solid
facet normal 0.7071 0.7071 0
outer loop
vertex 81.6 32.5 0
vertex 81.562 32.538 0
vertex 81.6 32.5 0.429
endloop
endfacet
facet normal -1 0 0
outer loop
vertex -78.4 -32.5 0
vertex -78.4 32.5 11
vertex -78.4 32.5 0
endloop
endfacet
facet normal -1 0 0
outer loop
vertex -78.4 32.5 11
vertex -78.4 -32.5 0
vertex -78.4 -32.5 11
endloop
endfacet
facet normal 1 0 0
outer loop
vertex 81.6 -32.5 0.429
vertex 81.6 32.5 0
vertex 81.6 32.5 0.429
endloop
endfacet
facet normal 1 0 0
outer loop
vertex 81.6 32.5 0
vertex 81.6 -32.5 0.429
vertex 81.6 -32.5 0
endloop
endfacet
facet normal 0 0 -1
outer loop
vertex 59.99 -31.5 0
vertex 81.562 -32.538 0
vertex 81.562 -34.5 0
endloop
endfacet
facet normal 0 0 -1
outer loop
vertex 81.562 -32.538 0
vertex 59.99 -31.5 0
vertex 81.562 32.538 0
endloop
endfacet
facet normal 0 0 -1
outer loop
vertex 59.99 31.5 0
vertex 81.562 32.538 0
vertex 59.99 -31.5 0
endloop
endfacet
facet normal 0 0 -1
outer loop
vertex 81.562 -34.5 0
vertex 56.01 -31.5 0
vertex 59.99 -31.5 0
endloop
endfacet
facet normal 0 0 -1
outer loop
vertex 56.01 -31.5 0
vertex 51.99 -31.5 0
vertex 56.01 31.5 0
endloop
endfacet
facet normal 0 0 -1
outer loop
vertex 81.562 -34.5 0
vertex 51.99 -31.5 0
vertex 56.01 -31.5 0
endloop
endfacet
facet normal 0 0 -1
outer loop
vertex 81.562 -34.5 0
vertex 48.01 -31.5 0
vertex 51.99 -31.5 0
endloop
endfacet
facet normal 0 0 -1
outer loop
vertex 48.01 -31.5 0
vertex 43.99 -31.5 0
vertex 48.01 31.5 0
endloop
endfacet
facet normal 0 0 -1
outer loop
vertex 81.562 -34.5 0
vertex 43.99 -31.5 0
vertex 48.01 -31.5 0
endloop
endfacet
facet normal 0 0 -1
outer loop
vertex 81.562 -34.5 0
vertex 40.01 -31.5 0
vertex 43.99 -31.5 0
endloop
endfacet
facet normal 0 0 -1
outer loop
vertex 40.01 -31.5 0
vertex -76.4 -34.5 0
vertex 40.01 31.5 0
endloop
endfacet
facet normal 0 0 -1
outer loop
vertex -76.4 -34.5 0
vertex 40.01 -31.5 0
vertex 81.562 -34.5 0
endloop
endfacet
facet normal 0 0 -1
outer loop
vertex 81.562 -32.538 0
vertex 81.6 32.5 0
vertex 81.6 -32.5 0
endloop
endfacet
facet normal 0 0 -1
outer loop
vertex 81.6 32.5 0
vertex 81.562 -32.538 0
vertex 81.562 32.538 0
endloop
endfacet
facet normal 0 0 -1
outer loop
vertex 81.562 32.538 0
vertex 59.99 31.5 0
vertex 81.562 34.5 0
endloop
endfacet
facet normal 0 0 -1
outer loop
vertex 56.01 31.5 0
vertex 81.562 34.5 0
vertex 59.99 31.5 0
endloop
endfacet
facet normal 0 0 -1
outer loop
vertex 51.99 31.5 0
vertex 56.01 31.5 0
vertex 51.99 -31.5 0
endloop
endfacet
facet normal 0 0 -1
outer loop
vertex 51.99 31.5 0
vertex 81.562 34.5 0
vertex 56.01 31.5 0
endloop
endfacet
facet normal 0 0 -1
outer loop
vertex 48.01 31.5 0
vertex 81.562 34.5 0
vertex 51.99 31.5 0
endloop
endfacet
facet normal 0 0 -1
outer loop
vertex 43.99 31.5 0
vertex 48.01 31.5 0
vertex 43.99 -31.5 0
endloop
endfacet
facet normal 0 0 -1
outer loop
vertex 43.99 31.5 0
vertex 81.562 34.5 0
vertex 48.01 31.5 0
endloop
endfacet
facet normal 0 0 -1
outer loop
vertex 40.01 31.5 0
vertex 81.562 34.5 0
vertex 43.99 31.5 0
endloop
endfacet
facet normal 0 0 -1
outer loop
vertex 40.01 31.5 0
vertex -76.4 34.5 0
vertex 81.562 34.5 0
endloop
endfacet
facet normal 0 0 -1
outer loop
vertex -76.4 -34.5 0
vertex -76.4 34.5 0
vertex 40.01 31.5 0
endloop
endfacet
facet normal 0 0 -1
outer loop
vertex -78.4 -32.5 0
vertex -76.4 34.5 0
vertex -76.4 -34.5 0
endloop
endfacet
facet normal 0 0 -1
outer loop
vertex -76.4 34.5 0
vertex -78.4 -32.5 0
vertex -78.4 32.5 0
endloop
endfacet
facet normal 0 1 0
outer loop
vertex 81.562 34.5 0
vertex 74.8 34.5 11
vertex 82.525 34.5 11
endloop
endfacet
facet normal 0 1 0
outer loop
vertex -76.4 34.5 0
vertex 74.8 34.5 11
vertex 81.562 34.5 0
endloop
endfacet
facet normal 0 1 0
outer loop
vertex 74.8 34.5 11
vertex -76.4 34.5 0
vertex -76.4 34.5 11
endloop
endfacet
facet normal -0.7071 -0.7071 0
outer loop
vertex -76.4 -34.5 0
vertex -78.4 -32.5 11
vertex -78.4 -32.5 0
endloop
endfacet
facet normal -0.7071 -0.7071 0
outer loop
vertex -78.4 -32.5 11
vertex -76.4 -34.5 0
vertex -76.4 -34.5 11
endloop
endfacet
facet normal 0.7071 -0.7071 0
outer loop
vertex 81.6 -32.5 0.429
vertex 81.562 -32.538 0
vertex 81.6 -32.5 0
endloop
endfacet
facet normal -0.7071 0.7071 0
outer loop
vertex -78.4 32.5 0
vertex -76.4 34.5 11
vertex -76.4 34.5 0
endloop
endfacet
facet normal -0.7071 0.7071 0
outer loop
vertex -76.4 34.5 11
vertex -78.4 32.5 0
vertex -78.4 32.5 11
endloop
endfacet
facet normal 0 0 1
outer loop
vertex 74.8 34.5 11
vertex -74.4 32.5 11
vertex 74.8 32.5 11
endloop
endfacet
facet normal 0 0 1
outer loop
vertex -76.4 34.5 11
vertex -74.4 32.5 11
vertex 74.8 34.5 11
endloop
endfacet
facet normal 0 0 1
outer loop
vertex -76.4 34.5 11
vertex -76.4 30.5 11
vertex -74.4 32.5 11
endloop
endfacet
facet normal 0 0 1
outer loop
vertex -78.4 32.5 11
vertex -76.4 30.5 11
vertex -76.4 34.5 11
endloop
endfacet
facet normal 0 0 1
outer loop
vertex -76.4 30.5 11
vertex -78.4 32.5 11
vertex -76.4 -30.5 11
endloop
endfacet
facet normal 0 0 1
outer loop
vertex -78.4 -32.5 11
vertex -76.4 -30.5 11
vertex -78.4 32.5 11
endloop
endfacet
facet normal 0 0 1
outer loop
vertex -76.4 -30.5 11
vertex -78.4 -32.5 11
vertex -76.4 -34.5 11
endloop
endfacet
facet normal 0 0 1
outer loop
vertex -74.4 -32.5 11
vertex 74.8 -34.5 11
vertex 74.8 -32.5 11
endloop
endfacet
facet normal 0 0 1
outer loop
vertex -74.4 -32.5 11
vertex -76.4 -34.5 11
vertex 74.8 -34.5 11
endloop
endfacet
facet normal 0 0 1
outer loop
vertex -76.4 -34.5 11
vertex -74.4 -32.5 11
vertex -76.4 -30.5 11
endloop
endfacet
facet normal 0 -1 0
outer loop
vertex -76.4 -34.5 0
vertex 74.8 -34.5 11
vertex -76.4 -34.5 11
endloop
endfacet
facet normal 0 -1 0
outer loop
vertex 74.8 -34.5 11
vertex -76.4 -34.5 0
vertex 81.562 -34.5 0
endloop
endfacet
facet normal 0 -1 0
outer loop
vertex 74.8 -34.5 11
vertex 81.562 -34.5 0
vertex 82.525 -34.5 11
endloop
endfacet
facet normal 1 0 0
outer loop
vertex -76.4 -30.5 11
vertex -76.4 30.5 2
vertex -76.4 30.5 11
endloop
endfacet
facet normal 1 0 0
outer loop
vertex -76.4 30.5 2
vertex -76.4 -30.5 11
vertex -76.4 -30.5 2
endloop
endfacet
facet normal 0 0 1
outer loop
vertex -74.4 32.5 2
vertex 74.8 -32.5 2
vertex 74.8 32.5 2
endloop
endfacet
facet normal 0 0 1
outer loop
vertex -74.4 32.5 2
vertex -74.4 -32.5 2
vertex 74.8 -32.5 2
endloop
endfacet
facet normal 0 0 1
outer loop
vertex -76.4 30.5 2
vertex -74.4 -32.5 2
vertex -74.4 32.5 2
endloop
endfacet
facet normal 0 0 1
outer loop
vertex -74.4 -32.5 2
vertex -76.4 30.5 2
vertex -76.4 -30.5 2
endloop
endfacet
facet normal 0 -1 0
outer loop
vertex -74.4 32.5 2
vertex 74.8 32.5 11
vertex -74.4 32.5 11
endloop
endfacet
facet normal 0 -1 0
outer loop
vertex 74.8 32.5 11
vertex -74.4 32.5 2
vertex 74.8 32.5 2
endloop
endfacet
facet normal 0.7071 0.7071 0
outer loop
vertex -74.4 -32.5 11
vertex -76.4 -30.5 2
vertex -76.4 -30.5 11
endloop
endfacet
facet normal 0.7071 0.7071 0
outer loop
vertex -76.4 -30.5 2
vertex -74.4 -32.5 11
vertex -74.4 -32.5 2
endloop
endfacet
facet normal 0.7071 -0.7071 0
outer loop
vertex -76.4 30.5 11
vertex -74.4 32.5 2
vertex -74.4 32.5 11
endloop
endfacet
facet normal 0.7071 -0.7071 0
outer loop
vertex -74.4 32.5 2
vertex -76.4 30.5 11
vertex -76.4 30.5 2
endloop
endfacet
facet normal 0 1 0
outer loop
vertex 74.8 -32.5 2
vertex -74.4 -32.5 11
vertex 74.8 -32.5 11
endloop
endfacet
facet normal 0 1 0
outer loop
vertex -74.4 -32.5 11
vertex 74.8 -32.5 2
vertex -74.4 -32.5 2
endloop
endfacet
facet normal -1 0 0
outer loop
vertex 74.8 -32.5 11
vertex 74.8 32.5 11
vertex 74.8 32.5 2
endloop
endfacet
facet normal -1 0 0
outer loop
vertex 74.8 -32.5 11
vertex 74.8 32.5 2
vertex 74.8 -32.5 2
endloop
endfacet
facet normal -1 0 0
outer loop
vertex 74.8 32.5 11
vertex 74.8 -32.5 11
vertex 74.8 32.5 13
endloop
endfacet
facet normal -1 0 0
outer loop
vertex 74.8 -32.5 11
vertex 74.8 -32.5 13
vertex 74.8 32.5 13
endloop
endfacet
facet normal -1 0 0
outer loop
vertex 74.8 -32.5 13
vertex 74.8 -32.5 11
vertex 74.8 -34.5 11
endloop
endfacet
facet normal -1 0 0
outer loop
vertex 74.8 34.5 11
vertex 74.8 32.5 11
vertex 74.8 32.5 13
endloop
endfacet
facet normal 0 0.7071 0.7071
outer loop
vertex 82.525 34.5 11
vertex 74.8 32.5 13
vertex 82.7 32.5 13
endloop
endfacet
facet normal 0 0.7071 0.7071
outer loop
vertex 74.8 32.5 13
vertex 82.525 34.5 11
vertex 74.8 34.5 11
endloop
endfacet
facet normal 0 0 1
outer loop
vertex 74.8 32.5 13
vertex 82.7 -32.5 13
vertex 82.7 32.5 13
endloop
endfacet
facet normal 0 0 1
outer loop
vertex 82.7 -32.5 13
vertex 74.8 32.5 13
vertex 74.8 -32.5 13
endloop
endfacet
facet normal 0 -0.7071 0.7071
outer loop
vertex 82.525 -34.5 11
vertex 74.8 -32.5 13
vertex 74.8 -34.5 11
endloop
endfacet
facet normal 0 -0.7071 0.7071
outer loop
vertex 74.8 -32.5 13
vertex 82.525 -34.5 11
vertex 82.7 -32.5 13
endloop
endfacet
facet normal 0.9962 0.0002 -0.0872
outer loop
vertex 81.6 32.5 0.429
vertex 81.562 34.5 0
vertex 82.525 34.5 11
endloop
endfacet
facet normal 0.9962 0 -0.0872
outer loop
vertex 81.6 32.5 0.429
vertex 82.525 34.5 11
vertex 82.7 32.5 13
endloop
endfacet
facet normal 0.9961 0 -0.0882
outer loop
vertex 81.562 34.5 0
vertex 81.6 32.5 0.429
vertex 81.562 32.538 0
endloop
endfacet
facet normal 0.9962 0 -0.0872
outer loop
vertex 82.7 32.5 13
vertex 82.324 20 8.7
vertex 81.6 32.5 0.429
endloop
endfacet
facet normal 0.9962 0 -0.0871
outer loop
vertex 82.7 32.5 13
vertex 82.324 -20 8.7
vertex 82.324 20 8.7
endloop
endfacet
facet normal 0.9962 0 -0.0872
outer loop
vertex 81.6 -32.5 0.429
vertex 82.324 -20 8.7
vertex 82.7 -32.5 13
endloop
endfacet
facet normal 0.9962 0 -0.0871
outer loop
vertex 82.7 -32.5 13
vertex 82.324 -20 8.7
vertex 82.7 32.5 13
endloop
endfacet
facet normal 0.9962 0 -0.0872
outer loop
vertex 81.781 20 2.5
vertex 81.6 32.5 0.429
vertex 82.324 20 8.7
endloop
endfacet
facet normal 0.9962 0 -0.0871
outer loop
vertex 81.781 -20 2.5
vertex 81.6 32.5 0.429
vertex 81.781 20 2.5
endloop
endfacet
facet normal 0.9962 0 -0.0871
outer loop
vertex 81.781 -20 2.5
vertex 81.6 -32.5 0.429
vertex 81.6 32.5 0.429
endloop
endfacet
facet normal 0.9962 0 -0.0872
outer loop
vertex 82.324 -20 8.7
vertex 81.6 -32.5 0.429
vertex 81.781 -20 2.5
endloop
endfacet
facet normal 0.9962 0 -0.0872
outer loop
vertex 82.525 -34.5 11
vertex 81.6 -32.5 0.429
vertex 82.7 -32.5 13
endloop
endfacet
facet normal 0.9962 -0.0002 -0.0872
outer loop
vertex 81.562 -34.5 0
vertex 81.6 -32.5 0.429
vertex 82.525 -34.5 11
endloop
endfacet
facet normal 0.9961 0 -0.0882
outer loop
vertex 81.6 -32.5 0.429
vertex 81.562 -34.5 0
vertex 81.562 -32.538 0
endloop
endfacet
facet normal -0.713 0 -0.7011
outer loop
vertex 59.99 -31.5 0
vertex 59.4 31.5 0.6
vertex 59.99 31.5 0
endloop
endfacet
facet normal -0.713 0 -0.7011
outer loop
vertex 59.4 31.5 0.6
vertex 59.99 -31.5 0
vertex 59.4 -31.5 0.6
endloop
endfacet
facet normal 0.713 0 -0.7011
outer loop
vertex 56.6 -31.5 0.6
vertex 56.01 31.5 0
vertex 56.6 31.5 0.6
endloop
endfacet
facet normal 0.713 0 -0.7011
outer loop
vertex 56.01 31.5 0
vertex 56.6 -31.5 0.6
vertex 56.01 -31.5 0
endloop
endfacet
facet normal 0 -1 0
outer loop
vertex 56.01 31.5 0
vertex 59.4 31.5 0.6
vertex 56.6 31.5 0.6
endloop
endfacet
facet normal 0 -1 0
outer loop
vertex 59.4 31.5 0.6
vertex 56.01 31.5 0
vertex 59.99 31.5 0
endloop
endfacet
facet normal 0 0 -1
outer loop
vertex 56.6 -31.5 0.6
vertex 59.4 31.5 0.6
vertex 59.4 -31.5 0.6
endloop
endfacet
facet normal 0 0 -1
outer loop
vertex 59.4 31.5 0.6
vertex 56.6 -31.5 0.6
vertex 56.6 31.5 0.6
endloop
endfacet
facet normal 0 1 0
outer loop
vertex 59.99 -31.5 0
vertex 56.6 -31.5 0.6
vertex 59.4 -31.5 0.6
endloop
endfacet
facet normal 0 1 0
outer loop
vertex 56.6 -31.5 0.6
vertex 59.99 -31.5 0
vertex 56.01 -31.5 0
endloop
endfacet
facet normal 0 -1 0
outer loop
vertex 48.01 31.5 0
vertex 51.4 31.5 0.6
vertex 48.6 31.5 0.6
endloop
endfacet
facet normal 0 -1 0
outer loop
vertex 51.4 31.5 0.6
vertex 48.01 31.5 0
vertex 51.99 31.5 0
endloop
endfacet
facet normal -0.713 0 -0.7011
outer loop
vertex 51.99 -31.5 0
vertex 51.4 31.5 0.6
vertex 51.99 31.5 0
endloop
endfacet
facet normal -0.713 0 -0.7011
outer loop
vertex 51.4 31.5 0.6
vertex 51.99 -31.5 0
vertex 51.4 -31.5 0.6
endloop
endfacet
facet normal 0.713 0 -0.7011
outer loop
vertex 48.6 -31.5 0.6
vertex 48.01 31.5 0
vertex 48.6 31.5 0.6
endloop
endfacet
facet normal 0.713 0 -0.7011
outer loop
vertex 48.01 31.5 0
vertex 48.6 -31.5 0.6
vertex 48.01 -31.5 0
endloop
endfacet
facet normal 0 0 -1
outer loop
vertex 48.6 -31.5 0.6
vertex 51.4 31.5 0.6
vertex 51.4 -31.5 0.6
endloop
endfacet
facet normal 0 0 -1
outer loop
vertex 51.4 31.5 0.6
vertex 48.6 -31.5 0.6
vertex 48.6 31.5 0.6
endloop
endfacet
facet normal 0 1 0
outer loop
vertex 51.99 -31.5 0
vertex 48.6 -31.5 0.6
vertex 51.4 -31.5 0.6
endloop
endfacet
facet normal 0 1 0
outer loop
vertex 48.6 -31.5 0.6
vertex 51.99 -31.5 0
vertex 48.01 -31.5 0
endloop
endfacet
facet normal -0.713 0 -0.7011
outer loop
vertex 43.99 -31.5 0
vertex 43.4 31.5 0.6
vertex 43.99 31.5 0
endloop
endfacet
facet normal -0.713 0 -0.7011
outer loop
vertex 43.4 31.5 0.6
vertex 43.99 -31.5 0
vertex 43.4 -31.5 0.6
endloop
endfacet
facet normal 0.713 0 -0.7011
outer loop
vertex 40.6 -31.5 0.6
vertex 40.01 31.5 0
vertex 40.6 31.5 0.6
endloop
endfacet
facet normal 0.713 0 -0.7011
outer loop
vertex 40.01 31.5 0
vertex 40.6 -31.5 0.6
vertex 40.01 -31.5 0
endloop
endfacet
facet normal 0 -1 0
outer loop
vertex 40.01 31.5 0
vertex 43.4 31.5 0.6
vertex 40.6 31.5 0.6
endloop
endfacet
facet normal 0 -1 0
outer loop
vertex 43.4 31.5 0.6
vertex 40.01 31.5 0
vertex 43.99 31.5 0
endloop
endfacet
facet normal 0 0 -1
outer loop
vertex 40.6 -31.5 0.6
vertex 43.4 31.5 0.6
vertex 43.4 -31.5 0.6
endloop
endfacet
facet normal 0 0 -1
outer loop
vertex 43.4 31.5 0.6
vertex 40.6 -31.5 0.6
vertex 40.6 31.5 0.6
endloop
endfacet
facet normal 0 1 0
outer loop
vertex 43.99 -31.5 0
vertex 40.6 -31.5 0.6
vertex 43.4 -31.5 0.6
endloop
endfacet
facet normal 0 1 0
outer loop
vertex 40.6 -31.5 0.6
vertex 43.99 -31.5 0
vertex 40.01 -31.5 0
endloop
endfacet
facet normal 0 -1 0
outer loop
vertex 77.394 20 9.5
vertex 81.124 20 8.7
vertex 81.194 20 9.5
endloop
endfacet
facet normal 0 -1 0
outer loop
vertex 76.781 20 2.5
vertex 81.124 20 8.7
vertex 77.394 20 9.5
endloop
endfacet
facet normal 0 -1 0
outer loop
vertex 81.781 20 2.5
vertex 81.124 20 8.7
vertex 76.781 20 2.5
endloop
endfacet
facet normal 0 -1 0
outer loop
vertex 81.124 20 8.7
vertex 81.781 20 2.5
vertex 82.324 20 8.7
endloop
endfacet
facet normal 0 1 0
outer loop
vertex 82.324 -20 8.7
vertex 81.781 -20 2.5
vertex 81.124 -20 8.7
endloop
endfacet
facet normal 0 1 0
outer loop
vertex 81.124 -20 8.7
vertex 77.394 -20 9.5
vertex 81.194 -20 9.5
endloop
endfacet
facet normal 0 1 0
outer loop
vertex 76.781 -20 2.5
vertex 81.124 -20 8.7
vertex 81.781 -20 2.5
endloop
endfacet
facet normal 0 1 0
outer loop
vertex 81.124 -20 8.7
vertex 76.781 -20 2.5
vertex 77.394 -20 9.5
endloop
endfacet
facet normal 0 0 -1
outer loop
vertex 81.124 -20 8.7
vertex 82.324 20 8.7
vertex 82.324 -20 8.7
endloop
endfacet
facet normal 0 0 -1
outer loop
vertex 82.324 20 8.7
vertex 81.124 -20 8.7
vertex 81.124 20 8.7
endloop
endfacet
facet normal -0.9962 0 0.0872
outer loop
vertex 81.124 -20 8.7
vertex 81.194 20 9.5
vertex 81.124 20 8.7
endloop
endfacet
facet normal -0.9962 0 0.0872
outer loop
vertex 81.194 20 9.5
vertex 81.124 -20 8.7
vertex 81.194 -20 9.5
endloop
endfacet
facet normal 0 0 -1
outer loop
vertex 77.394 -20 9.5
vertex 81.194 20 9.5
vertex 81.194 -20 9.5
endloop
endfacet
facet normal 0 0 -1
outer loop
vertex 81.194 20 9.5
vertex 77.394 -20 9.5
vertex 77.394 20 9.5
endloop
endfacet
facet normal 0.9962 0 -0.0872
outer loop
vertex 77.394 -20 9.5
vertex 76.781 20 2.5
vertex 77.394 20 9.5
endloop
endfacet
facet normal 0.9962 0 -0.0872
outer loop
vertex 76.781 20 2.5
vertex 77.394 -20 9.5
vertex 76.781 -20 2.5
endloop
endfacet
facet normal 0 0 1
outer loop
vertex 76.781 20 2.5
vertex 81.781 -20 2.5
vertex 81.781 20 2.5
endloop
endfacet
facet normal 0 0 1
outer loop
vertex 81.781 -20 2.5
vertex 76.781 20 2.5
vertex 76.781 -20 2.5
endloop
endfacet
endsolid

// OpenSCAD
// Pull-out drip tray only — prints as modelled, flat on the bed, basin
// up. See marsh_repot_018.scad.
include <marsh_repot_018.scad>
part = "tray";
